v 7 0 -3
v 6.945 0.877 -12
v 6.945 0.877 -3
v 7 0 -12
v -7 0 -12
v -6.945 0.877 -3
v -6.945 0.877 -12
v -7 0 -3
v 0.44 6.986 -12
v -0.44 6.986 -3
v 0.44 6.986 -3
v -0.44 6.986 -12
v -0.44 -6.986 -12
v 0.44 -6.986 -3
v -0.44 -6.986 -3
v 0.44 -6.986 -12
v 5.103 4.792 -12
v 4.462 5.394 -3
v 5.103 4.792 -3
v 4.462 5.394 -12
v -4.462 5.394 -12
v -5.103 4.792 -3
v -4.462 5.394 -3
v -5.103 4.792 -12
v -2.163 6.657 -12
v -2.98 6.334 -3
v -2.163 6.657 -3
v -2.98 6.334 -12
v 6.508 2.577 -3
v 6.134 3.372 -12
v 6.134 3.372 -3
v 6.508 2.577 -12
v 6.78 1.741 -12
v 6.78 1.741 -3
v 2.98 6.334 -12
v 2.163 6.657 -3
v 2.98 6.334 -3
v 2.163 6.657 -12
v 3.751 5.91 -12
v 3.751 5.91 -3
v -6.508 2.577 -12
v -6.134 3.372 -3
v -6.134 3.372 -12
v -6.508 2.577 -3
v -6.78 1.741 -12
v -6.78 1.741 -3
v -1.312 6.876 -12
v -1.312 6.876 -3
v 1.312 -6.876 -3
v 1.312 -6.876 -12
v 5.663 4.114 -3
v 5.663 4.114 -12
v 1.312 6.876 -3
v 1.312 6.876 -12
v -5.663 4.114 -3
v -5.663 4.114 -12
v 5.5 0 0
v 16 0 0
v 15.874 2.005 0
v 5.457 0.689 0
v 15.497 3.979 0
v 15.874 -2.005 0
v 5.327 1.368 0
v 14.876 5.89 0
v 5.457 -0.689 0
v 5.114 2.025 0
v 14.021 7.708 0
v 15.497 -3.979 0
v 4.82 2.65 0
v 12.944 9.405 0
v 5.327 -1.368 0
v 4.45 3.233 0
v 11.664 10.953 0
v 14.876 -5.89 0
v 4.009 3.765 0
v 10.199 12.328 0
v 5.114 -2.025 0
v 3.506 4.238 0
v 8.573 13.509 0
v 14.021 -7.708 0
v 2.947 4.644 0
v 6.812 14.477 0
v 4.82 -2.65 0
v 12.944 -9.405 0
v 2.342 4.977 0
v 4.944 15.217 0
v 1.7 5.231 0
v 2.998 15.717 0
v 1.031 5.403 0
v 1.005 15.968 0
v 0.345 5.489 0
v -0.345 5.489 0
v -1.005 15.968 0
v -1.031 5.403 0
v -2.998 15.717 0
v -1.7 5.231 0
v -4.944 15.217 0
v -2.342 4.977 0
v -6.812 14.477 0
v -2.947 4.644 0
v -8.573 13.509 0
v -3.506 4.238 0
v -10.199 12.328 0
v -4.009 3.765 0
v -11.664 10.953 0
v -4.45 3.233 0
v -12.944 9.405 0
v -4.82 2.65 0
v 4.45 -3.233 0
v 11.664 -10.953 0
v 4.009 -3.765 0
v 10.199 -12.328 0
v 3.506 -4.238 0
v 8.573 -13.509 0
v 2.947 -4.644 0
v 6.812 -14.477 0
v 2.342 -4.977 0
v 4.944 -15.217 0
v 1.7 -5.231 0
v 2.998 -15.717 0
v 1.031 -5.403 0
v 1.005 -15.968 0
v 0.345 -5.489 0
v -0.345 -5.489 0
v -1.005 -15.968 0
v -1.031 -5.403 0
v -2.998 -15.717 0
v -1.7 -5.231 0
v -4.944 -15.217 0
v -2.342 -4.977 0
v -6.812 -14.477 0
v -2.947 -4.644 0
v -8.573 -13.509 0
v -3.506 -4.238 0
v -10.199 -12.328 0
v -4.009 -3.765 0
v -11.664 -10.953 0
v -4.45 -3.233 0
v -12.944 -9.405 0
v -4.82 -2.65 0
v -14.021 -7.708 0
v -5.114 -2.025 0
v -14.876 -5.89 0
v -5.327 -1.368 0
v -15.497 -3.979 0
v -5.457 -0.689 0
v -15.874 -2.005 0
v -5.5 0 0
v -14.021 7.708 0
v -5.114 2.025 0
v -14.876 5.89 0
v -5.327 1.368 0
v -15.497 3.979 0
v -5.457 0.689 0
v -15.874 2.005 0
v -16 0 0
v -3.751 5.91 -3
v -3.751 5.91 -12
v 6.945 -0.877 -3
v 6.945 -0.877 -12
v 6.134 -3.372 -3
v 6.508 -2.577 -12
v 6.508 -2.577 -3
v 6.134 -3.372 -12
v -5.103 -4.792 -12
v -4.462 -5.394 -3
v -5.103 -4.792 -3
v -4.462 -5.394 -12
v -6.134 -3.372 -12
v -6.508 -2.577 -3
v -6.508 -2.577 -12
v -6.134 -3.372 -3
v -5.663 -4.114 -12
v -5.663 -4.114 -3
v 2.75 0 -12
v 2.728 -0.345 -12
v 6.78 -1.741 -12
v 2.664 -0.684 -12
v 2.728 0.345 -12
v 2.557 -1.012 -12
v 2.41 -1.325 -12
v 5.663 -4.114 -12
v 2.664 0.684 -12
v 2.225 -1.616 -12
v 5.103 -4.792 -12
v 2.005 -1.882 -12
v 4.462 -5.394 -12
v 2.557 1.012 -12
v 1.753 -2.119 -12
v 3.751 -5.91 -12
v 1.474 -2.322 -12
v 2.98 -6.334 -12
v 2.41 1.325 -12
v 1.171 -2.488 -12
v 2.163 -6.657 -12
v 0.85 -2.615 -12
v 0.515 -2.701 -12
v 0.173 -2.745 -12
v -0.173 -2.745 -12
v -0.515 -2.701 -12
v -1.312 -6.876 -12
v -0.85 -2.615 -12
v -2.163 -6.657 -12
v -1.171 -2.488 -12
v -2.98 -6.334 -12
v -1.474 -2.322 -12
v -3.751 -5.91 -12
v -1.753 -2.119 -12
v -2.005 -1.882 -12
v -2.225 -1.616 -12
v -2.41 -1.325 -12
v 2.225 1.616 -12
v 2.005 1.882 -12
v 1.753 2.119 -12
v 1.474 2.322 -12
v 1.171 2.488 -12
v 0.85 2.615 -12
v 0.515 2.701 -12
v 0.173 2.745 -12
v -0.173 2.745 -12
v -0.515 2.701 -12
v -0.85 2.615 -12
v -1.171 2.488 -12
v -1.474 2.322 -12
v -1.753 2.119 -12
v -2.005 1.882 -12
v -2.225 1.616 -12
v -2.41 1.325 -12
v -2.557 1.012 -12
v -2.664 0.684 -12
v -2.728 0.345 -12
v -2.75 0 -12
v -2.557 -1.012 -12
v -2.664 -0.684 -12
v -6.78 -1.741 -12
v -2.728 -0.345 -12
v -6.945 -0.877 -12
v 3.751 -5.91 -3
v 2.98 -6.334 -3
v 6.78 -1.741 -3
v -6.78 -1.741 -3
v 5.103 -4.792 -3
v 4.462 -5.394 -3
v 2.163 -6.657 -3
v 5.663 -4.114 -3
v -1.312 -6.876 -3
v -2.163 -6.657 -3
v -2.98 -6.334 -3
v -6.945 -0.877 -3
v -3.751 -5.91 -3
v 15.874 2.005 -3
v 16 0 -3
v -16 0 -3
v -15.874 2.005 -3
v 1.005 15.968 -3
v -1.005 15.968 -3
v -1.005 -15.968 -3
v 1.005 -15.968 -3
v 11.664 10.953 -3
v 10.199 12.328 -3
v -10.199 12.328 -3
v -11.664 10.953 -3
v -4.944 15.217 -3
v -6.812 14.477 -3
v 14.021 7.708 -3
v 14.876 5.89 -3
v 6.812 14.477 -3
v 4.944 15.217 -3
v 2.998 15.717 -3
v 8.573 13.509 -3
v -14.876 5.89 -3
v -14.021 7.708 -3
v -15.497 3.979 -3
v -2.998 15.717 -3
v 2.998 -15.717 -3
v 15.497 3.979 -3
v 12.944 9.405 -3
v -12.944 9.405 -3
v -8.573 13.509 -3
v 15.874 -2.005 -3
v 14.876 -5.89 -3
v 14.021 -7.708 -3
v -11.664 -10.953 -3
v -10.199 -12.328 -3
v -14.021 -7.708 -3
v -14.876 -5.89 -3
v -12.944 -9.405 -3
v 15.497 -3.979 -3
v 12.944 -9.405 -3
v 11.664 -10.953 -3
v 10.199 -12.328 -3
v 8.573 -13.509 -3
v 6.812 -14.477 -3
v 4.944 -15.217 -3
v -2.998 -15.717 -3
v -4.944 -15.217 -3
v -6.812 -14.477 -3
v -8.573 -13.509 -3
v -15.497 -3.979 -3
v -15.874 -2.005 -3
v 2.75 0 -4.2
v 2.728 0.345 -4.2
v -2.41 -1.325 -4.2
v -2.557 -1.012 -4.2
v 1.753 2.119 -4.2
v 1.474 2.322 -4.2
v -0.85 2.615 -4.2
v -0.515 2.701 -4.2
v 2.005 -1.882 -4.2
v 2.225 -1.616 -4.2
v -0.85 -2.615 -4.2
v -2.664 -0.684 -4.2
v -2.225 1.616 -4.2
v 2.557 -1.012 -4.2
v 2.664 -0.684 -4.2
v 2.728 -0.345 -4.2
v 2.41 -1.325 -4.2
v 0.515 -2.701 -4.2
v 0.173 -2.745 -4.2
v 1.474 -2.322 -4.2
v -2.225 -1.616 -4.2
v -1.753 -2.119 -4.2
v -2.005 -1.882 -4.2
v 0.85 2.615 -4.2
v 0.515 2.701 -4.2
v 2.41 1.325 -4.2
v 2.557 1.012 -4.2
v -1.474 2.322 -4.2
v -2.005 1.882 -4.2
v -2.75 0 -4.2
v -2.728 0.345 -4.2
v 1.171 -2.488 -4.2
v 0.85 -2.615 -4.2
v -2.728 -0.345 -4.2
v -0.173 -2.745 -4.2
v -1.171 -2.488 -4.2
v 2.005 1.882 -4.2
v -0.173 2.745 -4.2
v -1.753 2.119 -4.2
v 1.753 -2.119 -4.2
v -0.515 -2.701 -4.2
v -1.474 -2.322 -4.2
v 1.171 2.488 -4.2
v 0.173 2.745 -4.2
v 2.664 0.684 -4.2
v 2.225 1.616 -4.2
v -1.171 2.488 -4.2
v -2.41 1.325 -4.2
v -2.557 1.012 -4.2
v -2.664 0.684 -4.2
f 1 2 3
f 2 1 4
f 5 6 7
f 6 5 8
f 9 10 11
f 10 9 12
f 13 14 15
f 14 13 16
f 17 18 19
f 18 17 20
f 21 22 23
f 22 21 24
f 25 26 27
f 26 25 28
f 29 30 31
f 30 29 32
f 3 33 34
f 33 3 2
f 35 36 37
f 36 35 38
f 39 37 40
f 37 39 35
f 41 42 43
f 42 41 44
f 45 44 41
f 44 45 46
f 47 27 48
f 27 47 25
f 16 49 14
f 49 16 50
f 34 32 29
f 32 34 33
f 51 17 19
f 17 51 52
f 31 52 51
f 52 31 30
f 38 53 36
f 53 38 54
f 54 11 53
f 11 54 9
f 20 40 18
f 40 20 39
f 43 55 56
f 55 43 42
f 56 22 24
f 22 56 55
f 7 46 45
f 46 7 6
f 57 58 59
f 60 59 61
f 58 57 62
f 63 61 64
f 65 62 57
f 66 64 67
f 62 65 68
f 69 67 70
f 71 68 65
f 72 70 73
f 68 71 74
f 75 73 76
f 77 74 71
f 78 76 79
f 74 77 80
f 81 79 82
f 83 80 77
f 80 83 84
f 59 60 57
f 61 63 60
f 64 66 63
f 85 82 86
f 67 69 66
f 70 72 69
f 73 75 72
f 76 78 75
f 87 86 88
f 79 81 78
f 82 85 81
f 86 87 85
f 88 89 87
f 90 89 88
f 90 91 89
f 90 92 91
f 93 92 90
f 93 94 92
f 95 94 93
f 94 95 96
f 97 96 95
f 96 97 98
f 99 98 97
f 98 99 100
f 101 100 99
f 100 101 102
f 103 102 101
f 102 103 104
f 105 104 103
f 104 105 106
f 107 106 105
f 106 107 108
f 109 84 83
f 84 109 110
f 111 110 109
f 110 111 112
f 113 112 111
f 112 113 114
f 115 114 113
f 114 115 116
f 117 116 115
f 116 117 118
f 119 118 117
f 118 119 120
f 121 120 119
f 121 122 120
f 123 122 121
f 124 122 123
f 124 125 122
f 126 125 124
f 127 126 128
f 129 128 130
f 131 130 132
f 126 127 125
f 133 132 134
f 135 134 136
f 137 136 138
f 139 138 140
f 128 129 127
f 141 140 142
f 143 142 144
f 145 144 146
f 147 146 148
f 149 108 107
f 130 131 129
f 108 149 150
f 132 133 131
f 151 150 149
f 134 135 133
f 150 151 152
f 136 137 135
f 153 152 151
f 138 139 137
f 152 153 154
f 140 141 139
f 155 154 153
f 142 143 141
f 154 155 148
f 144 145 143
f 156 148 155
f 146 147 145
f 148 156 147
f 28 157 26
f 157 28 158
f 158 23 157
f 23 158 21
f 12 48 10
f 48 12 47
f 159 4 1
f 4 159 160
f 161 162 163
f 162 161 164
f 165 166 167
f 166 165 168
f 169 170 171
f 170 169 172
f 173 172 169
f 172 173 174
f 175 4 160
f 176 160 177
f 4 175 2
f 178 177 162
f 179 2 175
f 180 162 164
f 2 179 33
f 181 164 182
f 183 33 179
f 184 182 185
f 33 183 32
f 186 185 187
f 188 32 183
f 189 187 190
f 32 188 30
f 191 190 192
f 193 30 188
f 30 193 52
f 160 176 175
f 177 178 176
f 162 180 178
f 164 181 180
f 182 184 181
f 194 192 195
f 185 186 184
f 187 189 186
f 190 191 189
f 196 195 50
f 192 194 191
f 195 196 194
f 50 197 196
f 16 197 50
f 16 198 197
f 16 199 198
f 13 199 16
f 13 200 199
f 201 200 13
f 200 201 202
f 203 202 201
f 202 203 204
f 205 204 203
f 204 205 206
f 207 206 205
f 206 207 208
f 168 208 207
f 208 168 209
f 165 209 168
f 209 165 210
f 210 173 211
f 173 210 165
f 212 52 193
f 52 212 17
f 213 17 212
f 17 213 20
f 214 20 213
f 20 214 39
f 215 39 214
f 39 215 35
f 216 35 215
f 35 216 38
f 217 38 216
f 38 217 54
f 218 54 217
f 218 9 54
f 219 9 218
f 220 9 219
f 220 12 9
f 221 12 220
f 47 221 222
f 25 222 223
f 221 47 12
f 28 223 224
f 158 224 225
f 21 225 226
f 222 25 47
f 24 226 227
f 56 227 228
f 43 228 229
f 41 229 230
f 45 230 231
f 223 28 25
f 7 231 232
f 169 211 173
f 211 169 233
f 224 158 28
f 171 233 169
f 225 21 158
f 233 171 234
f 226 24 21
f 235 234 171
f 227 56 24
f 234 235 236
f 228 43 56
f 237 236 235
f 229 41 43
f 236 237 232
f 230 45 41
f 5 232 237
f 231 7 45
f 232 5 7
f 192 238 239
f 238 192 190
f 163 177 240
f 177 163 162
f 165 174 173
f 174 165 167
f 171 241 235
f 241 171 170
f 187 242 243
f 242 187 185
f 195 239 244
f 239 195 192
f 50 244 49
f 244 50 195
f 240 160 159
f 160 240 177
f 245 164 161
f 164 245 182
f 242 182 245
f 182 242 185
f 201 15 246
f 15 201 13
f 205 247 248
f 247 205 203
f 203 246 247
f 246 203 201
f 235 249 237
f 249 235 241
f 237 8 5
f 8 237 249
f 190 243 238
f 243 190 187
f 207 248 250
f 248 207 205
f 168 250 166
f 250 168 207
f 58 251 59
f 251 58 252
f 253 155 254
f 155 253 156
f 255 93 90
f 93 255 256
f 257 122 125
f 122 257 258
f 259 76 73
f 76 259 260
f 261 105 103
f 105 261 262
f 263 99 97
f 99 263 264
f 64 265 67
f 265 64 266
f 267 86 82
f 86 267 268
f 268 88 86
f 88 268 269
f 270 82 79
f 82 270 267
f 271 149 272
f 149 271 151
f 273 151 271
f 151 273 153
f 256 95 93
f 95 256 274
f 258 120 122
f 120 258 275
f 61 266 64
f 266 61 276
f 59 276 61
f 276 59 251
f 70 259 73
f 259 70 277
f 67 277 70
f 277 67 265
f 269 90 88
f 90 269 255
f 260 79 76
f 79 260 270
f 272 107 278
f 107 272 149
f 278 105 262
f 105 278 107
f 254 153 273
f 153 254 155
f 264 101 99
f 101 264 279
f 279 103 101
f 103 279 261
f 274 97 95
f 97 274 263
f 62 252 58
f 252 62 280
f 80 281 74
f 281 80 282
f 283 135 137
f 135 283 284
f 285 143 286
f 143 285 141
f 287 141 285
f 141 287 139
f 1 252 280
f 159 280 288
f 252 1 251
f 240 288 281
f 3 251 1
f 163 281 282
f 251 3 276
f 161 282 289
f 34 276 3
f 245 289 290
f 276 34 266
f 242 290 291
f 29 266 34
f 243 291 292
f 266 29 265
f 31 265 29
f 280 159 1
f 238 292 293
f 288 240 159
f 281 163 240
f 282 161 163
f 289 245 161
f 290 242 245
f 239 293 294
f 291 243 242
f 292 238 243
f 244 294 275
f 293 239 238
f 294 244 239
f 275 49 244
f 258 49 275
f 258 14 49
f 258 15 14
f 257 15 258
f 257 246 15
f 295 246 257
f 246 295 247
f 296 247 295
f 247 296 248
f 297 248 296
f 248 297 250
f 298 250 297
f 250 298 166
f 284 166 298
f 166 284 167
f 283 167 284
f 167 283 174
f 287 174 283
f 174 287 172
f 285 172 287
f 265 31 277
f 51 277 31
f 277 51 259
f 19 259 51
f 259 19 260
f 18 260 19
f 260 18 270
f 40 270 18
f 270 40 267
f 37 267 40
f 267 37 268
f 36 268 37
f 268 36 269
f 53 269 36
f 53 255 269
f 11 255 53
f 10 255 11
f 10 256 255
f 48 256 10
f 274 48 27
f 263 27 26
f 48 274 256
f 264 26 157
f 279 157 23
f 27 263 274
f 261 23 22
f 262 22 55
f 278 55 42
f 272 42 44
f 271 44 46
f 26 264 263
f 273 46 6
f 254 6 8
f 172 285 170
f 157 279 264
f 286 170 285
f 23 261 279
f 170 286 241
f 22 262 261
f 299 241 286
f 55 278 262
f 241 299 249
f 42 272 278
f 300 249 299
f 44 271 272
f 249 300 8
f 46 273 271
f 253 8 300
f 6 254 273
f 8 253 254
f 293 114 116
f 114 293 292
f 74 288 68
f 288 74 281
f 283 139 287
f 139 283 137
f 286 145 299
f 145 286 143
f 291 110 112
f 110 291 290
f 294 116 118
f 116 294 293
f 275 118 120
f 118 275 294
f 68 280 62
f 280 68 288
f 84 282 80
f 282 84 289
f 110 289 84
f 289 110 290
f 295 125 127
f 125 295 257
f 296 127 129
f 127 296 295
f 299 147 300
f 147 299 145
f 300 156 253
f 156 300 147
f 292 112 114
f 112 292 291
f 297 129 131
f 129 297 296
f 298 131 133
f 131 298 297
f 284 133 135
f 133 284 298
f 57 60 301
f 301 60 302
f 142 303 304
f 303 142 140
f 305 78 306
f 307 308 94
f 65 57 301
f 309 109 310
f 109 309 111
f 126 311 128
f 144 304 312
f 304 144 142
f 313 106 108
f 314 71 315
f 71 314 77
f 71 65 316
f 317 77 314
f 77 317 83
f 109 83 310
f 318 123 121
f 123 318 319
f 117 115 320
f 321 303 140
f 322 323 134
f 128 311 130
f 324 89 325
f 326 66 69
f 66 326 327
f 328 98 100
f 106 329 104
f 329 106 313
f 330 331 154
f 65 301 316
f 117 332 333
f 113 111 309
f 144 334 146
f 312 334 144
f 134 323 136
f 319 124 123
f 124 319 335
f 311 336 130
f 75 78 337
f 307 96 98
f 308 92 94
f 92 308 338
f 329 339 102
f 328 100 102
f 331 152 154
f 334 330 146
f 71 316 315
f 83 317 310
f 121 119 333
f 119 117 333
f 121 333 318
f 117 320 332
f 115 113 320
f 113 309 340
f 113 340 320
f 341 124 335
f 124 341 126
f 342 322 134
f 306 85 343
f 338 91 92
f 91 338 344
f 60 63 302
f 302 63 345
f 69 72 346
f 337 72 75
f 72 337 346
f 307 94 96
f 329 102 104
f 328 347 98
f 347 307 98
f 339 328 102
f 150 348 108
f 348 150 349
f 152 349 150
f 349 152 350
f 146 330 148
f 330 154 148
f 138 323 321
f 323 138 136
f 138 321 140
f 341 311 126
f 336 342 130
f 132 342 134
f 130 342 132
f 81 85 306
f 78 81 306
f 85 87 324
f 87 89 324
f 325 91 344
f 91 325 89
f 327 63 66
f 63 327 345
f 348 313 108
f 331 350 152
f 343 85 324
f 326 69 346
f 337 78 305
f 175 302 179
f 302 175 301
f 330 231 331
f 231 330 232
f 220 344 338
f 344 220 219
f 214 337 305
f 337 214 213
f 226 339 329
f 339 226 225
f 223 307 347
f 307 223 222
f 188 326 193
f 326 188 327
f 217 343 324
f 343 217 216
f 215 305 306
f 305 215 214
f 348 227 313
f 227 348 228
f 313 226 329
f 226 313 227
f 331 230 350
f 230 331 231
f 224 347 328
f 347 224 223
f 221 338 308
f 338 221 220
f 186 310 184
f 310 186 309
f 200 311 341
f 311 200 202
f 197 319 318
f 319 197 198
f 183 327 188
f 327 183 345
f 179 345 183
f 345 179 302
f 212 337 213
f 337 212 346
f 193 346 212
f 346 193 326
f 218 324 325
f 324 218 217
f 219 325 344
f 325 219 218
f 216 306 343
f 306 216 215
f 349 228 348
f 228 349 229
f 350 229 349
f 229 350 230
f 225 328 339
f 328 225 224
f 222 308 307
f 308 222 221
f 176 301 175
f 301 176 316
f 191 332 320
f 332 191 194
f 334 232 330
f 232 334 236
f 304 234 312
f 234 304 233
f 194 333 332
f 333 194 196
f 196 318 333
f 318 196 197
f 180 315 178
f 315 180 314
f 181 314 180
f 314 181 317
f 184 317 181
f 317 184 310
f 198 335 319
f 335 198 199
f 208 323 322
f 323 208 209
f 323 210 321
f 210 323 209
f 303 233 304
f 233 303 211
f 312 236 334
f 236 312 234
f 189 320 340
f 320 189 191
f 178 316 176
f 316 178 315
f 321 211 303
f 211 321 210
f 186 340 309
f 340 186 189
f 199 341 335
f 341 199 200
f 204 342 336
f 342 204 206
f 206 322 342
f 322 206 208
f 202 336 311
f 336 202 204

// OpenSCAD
$fn = 50;


difference() {
	union() {
		translate(v = [0, 0, -12.0000000000]) {
			cylinder(h = 12, r = 7.0000000000);
		}
		translate(v = [0, 0, -3.0000000000]) {
			cylinder(h = 3, r = 16.0000000000);
		}
	}
	union() {
		translate(v = [0, 0, 0]) {
			rotate(a = [0, 0, 0]) {
				difference() {
					union() {
						#translate(v = [0, 0, -12.0000000000]) {
							cylinder(h = 12, r = 2.2500000000);
						}
						#translate(v = [0, 0, -4.2000000000]) {
							cylinder(h = 4.2000000000, r1 = 2.7500000000, r2 = 5.5000000000);
						}
						#translate(v = [0, 0, -12.0000000000]) {
							cylinder(h = 12, r = 2.7500000000);
						}
						#translate(v = [0, 0, -12.0000000000]) {
							cylinder(h = 12, r = 2.2500000000);
						}
					}
					union();
				}
			}
		}
	}
}
